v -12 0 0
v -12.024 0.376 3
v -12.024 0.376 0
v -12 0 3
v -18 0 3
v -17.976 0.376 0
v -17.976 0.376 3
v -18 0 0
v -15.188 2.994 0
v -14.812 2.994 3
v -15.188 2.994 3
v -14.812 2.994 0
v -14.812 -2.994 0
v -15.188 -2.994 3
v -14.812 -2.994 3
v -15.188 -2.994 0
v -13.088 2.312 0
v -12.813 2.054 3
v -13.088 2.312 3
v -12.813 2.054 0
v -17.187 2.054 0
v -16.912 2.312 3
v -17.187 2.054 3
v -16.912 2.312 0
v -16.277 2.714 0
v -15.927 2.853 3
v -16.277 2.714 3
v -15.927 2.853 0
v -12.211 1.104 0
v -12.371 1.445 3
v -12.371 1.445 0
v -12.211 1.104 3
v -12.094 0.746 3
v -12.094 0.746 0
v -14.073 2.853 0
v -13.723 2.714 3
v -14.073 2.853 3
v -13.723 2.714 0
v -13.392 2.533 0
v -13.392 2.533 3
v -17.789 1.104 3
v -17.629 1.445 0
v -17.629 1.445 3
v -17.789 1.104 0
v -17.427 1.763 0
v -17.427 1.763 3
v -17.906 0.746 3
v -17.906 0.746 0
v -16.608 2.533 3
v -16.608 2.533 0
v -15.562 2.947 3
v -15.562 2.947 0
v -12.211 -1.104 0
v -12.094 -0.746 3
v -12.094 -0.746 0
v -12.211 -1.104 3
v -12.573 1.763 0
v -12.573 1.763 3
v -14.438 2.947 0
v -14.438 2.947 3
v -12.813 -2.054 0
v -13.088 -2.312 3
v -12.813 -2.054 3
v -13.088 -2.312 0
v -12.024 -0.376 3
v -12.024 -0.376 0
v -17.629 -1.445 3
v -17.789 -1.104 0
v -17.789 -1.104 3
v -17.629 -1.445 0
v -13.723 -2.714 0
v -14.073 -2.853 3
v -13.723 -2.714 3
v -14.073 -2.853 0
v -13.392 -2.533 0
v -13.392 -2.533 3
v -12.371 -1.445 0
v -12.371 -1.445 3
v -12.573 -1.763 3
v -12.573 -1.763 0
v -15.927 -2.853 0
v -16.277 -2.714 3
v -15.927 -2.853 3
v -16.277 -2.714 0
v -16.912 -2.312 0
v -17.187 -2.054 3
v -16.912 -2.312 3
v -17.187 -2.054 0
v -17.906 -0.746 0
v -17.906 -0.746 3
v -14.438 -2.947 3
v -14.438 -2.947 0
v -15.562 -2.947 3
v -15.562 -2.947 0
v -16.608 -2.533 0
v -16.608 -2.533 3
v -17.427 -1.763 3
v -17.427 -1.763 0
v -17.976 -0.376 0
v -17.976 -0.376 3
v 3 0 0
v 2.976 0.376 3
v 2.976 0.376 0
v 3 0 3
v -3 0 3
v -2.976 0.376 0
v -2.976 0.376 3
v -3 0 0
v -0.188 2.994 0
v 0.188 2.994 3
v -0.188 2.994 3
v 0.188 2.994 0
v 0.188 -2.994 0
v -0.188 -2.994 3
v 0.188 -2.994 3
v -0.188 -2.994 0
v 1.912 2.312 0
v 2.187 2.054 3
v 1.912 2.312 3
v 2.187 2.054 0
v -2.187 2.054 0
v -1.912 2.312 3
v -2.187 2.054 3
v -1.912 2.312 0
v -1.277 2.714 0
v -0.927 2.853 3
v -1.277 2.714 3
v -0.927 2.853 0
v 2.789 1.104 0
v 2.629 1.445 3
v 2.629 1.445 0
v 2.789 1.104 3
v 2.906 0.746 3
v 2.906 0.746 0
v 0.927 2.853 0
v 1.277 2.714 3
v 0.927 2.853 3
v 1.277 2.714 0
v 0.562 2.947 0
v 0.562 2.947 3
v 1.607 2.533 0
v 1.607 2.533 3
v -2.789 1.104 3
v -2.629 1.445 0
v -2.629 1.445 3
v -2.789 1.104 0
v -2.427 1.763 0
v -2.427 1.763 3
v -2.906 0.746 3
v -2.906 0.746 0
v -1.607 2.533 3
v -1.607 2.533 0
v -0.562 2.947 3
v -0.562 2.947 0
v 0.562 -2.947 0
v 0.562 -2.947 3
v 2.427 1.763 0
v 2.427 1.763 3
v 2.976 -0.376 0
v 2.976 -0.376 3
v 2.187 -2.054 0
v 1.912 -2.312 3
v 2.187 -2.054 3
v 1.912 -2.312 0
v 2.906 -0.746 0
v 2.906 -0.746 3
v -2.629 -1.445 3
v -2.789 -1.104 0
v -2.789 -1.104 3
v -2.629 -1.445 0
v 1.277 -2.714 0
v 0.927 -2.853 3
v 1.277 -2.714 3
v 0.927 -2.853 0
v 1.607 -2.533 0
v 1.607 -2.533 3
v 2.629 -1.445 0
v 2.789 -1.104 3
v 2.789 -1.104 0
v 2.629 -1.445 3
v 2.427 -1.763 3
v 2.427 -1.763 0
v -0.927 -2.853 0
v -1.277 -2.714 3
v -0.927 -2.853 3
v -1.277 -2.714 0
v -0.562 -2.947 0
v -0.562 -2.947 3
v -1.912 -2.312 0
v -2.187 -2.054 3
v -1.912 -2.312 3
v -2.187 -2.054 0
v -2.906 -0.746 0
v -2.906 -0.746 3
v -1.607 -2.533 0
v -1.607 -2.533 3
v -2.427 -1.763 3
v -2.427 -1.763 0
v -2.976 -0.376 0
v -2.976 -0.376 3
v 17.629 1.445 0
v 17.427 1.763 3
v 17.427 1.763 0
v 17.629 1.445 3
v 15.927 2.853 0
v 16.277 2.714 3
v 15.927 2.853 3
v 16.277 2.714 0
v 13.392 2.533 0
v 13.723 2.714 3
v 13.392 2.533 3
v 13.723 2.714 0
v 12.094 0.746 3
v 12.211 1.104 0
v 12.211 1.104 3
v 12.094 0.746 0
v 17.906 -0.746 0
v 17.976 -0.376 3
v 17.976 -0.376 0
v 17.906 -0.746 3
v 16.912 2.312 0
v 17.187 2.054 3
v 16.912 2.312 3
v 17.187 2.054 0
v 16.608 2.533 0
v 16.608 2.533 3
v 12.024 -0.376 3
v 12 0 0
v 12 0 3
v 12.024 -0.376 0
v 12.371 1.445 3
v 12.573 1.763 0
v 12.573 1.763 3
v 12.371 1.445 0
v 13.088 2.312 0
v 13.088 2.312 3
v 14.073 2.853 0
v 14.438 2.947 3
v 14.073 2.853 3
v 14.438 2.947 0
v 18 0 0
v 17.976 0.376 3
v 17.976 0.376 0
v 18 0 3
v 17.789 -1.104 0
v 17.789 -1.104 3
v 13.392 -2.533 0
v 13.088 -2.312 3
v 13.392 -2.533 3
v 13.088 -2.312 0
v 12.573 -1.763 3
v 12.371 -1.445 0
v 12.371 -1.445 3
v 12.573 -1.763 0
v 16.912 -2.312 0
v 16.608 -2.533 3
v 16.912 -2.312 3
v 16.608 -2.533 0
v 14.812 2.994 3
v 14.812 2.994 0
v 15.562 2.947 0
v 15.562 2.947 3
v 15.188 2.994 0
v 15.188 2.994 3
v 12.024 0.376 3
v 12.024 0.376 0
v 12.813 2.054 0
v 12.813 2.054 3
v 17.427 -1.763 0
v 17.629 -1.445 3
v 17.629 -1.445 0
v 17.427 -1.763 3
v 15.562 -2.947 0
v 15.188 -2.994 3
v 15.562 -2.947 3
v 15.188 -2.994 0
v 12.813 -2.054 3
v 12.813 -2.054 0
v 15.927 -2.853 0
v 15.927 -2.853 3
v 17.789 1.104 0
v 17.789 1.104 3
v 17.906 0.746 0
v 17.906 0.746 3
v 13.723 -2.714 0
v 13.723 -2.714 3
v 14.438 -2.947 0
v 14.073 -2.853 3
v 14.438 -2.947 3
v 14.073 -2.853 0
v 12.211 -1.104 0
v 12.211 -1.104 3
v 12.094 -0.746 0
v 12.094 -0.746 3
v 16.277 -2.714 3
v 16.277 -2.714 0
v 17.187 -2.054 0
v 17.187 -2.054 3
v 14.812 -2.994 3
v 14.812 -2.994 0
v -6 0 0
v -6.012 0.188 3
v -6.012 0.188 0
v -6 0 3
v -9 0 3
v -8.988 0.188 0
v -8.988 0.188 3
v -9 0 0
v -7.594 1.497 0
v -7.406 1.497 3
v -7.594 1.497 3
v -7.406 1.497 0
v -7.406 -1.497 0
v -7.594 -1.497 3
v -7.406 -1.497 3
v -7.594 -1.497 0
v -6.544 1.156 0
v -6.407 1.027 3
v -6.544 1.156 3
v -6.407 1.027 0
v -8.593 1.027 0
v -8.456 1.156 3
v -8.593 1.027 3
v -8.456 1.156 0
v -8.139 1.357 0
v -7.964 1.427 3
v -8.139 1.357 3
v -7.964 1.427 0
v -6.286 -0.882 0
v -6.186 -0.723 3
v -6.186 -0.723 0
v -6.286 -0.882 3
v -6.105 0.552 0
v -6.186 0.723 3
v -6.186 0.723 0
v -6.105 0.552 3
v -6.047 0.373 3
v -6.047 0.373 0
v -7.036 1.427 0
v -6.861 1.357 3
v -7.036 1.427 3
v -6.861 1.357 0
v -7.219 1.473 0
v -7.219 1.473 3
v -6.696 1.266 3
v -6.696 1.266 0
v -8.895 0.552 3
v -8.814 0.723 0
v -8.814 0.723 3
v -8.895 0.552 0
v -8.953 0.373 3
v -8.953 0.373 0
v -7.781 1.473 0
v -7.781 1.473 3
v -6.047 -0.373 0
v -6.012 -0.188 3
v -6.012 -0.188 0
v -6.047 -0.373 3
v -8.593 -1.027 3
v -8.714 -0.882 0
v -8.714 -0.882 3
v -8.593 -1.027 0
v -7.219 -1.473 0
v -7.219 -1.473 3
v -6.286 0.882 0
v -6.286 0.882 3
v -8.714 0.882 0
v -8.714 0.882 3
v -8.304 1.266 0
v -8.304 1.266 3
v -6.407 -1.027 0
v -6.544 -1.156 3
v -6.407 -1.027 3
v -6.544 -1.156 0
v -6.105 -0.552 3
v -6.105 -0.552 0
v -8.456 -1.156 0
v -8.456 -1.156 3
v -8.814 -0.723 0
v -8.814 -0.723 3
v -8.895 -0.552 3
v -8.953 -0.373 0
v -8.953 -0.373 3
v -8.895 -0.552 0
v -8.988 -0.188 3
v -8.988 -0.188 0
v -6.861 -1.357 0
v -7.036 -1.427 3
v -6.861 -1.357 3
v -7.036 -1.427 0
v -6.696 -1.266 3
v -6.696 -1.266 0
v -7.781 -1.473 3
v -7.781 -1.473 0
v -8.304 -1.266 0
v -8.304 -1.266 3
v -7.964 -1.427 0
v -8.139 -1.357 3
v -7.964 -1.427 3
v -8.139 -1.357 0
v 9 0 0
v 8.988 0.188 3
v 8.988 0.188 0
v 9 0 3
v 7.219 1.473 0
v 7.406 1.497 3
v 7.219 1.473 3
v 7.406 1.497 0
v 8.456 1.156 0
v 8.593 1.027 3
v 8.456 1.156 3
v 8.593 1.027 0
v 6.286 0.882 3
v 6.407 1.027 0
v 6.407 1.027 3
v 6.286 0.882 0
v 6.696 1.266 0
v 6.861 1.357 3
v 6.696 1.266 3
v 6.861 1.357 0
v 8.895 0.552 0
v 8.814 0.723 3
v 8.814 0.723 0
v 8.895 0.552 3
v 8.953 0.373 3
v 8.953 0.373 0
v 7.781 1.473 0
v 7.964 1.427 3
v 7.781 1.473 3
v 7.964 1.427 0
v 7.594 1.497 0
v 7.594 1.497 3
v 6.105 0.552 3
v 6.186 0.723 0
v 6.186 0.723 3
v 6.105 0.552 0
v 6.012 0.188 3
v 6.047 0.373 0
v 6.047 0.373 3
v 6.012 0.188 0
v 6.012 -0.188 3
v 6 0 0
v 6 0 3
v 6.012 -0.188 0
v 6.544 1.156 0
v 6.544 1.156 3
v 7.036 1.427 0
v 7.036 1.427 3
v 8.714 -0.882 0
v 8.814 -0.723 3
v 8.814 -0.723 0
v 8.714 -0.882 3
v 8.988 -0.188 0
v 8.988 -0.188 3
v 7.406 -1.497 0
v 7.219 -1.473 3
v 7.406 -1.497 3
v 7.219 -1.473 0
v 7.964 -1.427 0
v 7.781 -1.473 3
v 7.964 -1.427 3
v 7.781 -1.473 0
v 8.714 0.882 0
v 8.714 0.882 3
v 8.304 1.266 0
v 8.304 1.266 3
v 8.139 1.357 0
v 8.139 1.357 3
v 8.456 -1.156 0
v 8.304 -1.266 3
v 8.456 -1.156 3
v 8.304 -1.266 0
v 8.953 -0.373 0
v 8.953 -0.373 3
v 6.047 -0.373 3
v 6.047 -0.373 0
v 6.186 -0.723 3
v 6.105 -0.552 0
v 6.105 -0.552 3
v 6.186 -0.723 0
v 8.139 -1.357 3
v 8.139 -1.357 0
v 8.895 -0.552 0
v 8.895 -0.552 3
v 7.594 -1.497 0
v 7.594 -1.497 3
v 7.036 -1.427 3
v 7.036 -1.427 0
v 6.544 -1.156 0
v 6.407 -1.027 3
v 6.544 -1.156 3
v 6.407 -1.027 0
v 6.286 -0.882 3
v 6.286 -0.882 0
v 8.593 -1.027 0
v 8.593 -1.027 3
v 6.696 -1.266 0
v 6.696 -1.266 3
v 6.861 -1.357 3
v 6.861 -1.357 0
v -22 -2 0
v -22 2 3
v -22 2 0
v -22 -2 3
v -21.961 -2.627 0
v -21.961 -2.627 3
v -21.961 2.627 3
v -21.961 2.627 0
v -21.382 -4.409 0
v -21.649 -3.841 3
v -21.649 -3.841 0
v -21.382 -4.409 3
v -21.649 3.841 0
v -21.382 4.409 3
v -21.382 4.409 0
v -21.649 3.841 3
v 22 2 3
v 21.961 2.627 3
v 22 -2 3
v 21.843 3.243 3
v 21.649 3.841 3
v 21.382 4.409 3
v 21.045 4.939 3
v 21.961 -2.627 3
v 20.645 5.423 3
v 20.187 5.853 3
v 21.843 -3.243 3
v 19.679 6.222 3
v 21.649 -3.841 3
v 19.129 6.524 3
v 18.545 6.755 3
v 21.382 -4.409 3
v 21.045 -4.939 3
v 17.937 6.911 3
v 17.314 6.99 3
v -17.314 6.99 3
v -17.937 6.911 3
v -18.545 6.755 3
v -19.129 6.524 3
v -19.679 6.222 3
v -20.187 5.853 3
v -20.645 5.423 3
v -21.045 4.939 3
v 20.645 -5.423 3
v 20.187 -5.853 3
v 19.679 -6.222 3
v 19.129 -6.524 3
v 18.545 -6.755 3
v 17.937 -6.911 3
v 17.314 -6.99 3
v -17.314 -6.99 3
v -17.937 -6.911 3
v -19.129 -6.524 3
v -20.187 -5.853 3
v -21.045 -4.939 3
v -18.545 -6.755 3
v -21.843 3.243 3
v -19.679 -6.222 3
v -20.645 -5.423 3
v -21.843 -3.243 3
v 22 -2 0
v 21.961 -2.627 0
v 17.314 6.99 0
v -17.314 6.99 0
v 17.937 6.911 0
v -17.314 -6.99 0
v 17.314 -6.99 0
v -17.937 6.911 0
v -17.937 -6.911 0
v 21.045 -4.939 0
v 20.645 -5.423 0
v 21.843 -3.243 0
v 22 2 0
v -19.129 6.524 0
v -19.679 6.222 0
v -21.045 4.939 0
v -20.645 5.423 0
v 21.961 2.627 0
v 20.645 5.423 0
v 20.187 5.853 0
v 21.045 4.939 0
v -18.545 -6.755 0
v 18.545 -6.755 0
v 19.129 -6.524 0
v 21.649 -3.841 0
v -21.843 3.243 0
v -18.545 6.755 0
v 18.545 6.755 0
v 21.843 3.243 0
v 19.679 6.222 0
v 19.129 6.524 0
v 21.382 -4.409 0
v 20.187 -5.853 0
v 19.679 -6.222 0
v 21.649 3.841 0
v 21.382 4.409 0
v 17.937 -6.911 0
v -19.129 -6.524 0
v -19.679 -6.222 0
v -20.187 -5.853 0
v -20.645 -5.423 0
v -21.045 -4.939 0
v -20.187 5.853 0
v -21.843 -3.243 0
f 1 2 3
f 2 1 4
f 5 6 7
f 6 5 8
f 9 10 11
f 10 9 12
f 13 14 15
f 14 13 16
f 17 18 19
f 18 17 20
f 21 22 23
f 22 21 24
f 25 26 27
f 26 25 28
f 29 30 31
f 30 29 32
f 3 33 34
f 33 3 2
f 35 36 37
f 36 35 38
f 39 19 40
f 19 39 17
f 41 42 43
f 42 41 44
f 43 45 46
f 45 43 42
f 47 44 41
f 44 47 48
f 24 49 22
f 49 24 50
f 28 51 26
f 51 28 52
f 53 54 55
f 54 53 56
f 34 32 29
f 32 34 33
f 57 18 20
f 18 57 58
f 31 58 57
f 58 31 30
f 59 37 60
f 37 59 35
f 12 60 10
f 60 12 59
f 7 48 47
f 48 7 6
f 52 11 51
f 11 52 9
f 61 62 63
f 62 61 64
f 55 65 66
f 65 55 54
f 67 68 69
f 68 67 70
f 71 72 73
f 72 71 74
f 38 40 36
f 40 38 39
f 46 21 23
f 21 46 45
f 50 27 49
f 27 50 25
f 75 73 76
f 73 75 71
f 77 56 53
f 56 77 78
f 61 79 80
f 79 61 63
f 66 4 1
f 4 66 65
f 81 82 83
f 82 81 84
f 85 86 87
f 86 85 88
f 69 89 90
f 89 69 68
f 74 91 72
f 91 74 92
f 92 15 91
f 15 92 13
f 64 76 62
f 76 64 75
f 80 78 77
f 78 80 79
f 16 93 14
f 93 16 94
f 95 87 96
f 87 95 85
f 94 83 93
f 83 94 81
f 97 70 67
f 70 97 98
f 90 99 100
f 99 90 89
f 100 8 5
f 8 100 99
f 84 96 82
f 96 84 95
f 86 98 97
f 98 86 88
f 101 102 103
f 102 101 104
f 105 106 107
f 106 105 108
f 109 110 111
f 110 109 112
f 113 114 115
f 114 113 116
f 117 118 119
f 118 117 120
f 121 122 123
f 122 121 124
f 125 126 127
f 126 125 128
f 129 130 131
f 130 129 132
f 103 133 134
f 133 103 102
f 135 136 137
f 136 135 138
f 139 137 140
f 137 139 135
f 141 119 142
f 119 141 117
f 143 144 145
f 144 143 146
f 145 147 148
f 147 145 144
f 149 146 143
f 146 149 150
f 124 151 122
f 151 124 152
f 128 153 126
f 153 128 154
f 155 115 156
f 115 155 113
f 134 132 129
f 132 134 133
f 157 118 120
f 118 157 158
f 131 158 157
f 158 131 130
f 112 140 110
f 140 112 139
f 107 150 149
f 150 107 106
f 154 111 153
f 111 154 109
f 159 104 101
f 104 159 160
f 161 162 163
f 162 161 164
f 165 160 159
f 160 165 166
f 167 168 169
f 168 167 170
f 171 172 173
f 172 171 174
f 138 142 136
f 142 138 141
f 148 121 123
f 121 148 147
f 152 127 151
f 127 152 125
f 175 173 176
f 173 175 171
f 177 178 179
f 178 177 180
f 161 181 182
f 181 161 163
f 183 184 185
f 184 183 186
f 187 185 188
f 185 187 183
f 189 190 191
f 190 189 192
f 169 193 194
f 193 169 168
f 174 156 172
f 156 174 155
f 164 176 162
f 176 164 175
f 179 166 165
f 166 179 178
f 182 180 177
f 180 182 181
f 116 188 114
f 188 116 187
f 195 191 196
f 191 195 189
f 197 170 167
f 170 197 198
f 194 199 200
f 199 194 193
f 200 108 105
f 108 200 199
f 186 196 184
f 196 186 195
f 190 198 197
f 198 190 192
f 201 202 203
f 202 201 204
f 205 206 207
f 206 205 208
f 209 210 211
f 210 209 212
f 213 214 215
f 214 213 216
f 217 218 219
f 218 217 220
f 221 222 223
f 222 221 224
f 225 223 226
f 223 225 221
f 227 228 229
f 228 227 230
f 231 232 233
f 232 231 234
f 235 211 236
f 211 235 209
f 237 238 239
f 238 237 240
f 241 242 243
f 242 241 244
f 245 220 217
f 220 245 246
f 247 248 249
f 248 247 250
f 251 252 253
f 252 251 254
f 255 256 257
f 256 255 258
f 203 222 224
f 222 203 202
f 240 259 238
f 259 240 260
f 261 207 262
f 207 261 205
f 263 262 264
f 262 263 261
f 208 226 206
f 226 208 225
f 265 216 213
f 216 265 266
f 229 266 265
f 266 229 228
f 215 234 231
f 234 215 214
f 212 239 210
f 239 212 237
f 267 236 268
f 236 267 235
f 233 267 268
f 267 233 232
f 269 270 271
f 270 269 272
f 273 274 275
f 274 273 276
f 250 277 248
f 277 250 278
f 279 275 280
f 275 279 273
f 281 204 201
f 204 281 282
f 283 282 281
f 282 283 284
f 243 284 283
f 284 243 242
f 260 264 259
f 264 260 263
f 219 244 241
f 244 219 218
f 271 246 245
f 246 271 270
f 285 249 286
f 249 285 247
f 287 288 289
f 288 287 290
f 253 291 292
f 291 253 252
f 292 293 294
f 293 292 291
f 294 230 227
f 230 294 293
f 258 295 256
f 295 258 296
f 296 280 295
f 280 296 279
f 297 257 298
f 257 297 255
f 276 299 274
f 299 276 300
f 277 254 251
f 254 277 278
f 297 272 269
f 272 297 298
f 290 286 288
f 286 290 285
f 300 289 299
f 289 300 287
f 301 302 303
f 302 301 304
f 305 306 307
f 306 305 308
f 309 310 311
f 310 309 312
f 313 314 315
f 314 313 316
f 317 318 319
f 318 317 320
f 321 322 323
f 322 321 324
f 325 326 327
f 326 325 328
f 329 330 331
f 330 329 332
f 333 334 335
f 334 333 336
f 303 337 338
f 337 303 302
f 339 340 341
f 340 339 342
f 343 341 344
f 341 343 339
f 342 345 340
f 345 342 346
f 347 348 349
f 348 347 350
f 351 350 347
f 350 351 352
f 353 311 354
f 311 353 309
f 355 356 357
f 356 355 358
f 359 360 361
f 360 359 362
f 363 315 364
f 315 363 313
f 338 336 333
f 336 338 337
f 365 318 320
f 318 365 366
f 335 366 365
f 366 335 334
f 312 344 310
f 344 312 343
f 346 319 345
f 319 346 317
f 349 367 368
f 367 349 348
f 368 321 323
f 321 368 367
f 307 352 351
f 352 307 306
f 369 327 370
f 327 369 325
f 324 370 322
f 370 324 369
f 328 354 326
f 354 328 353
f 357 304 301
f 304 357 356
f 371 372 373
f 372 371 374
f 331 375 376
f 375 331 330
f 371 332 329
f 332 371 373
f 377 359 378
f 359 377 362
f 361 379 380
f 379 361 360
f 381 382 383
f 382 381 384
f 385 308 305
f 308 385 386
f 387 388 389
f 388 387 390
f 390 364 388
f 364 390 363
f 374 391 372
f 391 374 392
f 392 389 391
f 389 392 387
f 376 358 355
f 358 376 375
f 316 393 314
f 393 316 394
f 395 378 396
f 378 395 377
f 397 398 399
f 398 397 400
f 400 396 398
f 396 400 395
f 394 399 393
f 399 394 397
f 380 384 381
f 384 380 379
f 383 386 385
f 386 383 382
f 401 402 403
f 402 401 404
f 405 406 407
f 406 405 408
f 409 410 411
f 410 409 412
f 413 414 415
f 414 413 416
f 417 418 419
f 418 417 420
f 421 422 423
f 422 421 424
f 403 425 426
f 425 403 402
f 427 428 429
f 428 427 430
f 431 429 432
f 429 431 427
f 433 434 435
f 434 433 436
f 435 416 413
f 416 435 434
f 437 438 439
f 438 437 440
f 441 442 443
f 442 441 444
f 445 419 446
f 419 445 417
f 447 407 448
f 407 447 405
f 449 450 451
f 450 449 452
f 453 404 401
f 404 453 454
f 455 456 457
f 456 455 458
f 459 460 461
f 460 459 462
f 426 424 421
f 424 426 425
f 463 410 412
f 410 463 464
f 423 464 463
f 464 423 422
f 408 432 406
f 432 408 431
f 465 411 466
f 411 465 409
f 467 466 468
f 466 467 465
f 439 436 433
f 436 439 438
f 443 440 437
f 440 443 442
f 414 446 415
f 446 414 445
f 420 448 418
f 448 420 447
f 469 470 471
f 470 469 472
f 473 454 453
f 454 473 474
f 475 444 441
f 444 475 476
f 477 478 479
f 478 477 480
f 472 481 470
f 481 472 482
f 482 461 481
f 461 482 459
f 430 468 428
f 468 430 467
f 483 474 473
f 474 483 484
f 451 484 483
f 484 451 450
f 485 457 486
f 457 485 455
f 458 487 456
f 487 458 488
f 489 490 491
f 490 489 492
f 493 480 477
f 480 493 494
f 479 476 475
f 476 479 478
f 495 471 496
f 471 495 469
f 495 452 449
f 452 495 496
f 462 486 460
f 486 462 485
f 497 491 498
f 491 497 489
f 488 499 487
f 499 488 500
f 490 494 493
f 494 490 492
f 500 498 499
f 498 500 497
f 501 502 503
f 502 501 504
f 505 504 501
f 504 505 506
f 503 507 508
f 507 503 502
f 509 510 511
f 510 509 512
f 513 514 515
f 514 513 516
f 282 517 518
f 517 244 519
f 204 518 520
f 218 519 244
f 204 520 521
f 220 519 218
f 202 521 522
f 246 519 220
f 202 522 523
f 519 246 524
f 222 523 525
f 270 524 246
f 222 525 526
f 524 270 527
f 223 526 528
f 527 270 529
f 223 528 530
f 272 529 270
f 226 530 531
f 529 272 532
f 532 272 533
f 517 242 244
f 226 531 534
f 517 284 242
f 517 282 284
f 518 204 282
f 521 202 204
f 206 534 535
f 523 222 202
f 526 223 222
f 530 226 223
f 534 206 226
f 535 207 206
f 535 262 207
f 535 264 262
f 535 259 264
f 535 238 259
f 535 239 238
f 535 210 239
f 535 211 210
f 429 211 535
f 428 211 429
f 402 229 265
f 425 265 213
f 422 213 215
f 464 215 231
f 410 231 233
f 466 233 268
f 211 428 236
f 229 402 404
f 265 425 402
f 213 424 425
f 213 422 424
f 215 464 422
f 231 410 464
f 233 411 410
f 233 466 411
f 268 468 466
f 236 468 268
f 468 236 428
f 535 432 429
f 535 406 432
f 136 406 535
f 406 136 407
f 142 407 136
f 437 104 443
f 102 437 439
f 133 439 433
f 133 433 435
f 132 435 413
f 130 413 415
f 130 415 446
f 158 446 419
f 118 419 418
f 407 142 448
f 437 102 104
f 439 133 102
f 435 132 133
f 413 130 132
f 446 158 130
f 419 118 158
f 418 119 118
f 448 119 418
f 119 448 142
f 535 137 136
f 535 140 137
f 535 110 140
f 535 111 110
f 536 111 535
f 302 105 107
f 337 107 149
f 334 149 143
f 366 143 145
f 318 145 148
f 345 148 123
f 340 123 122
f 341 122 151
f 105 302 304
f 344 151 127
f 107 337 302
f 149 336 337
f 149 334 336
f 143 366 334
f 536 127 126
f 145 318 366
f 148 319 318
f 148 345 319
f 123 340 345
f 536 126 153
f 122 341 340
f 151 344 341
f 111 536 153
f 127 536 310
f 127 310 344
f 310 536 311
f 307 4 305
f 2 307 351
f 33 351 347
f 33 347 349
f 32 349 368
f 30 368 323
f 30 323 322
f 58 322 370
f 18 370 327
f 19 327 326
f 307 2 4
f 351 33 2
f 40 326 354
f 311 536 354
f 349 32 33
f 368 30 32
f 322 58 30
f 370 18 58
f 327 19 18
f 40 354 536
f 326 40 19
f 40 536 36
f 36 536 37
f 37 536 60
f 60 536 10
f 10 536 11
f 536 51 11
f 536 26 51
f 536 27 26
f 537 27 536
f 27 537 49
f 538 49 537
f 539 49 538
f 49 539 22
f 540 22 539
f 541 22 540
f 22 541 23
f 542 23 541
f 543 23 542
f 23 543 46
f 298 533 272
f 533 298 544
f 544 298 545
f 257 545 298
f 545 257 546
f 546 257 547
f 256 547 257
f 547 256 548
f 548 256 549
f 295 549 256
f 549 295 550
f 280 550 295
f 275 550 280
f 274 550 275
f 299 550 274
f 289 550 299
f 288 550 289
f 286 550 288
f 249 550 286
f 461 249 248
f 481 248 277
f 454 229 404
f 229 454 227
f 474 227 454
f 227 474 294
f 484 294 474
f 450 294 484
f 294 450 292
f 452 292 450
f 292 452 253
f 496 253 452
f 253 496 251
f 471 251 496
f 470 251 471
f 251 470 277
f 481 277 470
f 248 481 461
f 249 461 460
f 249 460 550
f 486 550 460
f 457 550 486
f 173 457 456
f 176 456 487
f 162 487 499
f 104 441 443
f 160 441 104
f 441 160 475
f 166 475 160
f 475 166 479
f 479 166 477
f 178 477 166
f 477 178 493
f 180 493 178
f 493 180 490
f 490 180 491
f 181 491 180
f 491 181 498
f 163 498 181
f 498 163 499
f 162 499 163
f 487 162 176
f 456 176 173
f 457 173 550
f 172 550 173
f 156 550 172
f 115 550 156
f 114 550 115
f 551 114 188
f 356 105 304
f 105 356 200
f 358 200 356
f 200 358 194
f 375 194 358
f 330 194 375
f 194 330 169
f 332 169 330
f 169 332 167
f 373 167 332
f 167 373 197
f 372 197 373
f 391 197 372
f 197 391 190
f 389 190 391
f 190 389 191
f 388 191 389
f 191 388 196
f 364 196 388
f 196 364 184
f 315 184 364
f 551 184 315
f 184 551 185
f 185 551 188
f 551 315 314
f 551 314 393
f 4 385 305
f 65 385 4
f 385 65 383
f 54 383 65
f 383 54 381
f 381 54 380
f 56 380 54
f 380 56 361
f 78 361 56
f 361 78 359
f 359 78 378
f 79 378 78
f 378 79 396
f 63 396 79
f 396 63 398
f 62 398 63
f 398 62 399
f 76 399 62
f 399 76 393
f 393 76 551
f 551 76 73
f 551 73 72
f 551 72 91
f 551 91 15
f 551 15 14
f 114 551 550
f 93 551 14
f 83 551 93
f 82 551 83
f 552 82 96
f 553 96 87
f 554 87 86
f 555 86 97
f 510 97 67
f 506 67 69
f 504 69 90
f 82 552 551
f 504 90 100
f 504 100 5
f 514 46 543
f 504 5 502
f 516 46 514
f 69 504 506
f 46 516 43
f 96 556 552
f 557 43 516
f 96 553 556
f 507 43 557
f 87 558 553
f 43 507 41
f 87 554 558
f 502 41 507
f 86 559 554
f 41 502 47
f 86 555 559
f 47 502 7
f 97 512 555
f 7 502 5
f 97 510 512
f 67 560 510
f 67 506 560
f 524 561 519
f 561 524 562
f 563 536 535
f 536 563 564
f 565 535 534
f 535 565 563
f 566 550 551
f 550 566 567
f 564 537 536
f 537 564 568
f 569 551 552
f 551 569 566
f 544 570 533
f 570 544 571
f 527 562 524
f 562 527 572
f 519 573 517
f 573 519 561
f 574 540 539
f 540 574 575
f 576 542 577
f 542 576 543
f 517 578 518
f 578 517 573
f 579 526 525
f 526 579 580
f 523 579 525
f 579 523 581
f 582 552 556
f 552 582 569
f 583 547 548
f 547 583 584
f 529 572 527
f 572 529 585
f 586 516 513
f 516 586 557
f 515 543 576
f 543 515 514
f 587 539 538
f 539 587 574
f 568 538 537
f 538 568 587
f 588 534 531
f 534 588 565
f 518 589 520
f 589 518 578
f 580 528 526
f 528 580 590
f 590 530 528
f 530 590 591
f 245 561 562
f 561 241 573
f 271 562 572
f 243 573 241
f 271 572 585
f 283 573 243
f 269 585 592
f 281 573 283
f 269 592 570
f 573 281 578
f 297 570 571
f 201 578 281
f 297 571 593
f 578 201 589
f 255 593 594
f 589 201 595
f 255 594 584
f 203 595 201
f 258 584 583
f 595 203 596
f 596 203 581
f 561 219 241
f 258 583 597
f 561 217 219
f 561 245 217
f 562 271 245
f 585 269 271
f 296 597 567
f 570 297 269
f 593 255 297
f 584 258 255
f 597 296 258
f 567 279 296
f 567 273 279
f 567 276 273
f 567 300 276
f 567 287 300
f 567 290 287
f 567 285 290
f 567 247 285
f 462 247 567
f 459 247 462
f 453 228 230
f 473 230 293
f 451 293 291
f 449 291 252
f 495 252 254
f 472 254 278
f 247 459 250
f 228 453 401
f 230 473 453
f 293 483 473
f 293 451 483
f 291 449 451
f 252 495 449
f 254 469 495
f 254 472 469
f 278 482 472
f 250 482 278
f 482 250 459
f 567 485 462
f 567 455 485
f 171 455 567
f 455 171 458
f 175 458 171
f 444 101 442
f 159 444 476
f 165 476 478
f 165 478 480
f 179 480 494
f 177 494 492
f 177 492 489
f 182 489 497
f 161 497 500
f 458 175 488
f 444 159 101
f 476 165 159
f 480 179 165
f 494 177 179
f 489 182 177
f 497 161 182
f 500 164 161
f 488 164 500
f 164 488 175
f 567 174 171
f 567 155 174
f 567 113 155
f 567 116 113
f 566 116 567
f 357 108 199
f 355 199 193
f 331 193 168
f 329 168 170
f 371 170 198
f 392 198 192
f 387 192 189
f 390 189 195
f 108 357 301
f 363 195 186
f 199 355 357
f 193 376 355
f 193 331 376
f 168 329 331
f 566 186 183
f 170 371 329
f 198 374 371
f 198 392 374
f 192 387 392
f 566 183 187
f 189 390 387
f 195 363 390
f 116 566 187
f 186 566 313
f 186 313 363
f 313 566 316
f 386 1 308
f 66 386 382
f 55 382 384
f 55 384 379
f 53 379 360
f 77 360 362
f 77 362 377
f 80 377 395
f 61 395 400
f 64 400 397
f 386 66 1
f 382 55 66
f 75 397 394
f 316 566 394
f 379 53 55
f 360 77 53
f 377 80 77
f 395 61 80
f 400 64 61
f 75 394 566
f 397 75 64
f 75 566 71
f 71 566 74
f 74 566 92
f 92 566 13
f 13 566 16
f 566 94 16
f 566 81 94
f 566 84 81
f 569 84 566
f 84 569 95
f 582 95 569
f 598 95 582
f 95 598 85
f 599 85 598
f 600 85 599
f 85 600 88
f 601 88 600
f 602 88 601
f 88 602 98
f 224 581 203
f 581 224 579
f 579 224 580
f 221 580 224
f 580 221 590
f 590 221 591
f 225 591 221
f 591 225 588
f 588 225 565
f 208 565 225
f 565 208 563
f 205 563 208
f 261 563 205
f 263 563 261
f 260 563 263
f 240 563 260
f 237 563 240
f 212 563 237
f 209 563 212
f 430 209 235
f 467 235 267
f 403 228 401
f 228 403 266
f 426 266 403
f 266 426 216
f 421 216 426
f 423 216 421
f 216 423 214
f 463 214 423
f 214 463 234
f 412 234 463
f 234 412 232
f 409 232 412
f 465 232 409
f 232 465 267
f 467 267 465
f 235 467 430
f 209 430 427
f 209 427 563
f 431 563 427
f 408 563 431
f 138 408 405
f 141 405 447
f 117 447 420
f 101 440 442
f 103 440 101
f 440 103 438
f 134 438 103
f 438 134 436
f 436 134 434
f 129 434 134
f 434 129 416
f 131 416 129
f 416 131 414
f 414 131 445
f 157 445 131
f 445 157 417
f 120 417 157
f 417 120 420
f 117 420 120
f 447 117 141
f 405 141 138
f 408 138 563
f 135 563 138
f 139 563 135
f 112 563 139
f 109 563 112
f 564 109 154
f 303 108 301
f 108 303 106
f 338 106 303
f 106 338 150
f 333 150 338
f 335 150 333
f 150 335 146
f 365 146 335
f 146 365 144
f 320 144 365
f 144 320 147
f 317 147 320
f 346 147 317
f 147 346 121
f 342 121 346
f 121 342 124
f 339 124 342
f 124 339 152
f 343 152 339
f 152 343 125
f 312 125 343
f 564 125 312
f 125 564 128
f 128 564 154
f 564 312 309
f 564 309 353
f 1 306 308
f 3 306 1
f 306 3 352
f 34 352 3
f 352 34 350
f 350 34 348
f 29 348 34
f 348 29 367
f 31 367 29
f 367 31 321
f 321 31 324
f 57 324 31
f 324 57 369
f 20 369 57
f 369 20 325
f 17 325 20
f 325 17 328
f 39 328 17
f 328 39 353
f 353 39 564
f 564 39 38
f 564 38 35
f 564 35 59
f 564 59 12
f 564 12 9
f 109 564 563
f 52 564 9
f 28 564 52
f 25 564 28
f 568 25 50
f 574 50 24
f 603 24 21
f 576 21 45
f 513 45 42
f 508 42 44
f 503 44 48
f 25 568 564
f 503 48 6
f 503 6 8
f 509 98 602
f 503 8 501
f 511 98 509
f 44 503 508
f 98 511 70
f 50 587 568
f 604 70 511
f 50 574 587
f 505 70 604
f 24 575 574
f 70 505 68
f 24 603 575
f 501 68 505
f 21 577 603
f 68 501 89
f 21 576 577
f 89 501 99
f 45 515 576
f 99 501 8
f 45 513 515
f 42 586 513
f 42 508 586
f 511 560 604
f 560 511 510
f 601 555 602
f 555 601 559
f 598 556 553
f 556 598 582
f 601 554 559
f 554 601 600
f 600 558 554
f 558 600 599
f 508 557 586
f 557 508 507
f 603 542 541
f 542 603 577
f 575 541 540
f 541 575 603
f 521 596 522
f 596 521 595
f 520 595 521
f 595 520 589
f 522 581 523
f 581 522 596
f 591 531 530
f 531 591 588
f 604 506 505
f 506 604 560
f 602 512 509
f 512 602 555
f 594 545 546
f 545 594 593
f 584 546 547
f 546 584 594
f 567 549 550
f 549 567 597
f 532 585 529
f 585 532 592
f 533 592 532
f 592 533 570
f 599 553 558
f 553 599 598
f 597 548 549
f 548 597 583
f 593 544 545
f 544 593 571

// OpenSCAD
$fn = 50;


difference() {
	union() {
		*translate(v = [0, 7, 0]) {
			linear_extrude(height = 1) {
				text(halign = "center", size = 4.5000000000, text = "COMMENT plate main", valign = "center");
			}
		}
		*translate(v = [0, 14, 0]) {
			linear_extrude(height = 1) {
				text(halign = "center", size = 4.5000000000, text = "COMMENT description oobb_plate_shape_p_type_3_depth_3_width_1_height_3_thickness_true_both_holes", valign = "center");
			}
		}
		hull() {
			translate(v = [-17.0000000000, 2.0000000000, 0]) {
				cylinder(h = 3, r = 5);
			}
			translate(v = [17.0000000000, 2.0000000000, 0]) {
				cylinder(h = 3, r = 5);
			}
			translate(v = [-17.0000000000, -2.0000000000, 0]) {
				cylinder(h = 3, r = 5);
			}
			translate(v = [17.0000000000, -2.0000000000, 0]) {
				cylinder(h = 3, r = 5);
			}
		}
	}
	union() {
		*translate(v = [0, 7, 0]) {
			linear_extrude(height = 1) {
				text(halign = "center", size = 4.5000000000, text = "COMMENT holes main", valign = "center");
			}
		}
		*translate(v = [0, 14, 0]) {
			linear_extrude(height = 1) {
				text(halign = "center", size = 4.5000000000, text = "COMMENT description oobb_holes_shape_n_type_3_width_1_height_3_thickness_true_both_holes", valign = "center");
			}
		}
		translate(v = [-15.0000000000, 0.0000000000, 0]) {
			translate(v = [0, 0, -50]) {
				cylinder(h = 100, r = 3.0000000000);
			}
		}
		translate(v = [0, 0, -50]) {
			cylinder(h = 100, r = 3.0000000000);
		}
		translate(v = [15.0000000000, 0.0000000000, 0]) {
			translate(v = [0, 0, -50]) {
				cylinder(h = 100, r = 3.0000000000);
			}
		}
		translate(v = [-15.0000000000, 0.0000000000, 0]) {
			translate(v = [0, 0, -50]) {
				cylinder(h = 100, r = 1.5000000000);
			}
		}
		translate(v = [-7.5000000000, 0.0000000000, 0]) {
			translate(v = [0, 0, -50]) {
				cylinder(h = 100, r = 1.5000000000);
			}
		}
		translate(v = [0, 0, -50]) {
			cylinder(h = 100, r = 1.5000000000);
		}
		translate(v = [7.5000000000, 0.0000000000, 0]) {
			translate(v = [0, 0, -50]) {
				cylinder(h = 100, r = 1.5000000000);
			}
		}
		translate(v = [15.0000000000, 0.0000000000, 0]) {
			translate(v = [0, 0, -50]) {
				cylinder(h = 100, r = 1.5000000000);
			}
		}
	}
}
